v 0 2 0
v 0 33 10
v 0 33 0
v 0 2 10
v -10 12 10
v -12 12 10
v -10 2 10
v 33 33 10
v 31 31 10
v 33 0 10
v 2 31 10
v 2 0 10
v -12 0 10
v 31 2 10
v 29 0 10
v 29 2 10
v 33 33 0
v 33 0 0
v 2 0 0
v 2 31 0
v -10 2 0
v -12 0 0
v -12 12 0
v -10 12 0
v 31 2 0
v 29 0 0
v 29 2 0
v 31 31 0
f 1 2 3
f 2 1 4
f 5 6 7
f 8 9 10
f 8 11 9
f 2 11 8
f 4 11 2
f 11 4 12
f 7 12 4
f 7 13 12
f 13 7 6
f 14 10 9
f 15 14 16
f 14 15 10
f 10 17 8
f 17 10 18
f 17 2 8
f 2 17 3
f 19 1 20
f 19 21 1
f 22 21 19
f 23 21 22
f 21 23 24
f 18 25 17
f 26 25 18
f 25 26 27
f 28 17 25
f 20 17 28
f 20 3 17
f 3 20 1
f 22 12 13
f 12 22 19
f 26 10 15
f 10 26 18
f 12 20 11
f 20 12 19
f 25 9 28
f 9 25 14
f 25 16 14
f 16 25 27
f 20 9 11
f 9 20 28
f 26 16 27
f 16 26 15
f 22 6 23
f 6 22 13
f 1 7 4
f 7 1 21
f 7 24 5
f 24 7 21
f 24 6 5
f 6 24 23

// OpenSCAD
width = 29;
thickness = 2;
length = 10;

difference() {
    cube([width + 2 * thickness, width + 2 * thickness, length]);
    translate([thickness, thickness, 0]) cube([width, width, length]);
    translate([thickness, 0, 0]) cube([width- thickness, thickness, length]);
}

translate([-length - thickness, 0, 0]) cube([length + thickness, thickness, length]);
translate([-length - thickness, 0, 0]) cube([thickness, length + thickness, length]);
